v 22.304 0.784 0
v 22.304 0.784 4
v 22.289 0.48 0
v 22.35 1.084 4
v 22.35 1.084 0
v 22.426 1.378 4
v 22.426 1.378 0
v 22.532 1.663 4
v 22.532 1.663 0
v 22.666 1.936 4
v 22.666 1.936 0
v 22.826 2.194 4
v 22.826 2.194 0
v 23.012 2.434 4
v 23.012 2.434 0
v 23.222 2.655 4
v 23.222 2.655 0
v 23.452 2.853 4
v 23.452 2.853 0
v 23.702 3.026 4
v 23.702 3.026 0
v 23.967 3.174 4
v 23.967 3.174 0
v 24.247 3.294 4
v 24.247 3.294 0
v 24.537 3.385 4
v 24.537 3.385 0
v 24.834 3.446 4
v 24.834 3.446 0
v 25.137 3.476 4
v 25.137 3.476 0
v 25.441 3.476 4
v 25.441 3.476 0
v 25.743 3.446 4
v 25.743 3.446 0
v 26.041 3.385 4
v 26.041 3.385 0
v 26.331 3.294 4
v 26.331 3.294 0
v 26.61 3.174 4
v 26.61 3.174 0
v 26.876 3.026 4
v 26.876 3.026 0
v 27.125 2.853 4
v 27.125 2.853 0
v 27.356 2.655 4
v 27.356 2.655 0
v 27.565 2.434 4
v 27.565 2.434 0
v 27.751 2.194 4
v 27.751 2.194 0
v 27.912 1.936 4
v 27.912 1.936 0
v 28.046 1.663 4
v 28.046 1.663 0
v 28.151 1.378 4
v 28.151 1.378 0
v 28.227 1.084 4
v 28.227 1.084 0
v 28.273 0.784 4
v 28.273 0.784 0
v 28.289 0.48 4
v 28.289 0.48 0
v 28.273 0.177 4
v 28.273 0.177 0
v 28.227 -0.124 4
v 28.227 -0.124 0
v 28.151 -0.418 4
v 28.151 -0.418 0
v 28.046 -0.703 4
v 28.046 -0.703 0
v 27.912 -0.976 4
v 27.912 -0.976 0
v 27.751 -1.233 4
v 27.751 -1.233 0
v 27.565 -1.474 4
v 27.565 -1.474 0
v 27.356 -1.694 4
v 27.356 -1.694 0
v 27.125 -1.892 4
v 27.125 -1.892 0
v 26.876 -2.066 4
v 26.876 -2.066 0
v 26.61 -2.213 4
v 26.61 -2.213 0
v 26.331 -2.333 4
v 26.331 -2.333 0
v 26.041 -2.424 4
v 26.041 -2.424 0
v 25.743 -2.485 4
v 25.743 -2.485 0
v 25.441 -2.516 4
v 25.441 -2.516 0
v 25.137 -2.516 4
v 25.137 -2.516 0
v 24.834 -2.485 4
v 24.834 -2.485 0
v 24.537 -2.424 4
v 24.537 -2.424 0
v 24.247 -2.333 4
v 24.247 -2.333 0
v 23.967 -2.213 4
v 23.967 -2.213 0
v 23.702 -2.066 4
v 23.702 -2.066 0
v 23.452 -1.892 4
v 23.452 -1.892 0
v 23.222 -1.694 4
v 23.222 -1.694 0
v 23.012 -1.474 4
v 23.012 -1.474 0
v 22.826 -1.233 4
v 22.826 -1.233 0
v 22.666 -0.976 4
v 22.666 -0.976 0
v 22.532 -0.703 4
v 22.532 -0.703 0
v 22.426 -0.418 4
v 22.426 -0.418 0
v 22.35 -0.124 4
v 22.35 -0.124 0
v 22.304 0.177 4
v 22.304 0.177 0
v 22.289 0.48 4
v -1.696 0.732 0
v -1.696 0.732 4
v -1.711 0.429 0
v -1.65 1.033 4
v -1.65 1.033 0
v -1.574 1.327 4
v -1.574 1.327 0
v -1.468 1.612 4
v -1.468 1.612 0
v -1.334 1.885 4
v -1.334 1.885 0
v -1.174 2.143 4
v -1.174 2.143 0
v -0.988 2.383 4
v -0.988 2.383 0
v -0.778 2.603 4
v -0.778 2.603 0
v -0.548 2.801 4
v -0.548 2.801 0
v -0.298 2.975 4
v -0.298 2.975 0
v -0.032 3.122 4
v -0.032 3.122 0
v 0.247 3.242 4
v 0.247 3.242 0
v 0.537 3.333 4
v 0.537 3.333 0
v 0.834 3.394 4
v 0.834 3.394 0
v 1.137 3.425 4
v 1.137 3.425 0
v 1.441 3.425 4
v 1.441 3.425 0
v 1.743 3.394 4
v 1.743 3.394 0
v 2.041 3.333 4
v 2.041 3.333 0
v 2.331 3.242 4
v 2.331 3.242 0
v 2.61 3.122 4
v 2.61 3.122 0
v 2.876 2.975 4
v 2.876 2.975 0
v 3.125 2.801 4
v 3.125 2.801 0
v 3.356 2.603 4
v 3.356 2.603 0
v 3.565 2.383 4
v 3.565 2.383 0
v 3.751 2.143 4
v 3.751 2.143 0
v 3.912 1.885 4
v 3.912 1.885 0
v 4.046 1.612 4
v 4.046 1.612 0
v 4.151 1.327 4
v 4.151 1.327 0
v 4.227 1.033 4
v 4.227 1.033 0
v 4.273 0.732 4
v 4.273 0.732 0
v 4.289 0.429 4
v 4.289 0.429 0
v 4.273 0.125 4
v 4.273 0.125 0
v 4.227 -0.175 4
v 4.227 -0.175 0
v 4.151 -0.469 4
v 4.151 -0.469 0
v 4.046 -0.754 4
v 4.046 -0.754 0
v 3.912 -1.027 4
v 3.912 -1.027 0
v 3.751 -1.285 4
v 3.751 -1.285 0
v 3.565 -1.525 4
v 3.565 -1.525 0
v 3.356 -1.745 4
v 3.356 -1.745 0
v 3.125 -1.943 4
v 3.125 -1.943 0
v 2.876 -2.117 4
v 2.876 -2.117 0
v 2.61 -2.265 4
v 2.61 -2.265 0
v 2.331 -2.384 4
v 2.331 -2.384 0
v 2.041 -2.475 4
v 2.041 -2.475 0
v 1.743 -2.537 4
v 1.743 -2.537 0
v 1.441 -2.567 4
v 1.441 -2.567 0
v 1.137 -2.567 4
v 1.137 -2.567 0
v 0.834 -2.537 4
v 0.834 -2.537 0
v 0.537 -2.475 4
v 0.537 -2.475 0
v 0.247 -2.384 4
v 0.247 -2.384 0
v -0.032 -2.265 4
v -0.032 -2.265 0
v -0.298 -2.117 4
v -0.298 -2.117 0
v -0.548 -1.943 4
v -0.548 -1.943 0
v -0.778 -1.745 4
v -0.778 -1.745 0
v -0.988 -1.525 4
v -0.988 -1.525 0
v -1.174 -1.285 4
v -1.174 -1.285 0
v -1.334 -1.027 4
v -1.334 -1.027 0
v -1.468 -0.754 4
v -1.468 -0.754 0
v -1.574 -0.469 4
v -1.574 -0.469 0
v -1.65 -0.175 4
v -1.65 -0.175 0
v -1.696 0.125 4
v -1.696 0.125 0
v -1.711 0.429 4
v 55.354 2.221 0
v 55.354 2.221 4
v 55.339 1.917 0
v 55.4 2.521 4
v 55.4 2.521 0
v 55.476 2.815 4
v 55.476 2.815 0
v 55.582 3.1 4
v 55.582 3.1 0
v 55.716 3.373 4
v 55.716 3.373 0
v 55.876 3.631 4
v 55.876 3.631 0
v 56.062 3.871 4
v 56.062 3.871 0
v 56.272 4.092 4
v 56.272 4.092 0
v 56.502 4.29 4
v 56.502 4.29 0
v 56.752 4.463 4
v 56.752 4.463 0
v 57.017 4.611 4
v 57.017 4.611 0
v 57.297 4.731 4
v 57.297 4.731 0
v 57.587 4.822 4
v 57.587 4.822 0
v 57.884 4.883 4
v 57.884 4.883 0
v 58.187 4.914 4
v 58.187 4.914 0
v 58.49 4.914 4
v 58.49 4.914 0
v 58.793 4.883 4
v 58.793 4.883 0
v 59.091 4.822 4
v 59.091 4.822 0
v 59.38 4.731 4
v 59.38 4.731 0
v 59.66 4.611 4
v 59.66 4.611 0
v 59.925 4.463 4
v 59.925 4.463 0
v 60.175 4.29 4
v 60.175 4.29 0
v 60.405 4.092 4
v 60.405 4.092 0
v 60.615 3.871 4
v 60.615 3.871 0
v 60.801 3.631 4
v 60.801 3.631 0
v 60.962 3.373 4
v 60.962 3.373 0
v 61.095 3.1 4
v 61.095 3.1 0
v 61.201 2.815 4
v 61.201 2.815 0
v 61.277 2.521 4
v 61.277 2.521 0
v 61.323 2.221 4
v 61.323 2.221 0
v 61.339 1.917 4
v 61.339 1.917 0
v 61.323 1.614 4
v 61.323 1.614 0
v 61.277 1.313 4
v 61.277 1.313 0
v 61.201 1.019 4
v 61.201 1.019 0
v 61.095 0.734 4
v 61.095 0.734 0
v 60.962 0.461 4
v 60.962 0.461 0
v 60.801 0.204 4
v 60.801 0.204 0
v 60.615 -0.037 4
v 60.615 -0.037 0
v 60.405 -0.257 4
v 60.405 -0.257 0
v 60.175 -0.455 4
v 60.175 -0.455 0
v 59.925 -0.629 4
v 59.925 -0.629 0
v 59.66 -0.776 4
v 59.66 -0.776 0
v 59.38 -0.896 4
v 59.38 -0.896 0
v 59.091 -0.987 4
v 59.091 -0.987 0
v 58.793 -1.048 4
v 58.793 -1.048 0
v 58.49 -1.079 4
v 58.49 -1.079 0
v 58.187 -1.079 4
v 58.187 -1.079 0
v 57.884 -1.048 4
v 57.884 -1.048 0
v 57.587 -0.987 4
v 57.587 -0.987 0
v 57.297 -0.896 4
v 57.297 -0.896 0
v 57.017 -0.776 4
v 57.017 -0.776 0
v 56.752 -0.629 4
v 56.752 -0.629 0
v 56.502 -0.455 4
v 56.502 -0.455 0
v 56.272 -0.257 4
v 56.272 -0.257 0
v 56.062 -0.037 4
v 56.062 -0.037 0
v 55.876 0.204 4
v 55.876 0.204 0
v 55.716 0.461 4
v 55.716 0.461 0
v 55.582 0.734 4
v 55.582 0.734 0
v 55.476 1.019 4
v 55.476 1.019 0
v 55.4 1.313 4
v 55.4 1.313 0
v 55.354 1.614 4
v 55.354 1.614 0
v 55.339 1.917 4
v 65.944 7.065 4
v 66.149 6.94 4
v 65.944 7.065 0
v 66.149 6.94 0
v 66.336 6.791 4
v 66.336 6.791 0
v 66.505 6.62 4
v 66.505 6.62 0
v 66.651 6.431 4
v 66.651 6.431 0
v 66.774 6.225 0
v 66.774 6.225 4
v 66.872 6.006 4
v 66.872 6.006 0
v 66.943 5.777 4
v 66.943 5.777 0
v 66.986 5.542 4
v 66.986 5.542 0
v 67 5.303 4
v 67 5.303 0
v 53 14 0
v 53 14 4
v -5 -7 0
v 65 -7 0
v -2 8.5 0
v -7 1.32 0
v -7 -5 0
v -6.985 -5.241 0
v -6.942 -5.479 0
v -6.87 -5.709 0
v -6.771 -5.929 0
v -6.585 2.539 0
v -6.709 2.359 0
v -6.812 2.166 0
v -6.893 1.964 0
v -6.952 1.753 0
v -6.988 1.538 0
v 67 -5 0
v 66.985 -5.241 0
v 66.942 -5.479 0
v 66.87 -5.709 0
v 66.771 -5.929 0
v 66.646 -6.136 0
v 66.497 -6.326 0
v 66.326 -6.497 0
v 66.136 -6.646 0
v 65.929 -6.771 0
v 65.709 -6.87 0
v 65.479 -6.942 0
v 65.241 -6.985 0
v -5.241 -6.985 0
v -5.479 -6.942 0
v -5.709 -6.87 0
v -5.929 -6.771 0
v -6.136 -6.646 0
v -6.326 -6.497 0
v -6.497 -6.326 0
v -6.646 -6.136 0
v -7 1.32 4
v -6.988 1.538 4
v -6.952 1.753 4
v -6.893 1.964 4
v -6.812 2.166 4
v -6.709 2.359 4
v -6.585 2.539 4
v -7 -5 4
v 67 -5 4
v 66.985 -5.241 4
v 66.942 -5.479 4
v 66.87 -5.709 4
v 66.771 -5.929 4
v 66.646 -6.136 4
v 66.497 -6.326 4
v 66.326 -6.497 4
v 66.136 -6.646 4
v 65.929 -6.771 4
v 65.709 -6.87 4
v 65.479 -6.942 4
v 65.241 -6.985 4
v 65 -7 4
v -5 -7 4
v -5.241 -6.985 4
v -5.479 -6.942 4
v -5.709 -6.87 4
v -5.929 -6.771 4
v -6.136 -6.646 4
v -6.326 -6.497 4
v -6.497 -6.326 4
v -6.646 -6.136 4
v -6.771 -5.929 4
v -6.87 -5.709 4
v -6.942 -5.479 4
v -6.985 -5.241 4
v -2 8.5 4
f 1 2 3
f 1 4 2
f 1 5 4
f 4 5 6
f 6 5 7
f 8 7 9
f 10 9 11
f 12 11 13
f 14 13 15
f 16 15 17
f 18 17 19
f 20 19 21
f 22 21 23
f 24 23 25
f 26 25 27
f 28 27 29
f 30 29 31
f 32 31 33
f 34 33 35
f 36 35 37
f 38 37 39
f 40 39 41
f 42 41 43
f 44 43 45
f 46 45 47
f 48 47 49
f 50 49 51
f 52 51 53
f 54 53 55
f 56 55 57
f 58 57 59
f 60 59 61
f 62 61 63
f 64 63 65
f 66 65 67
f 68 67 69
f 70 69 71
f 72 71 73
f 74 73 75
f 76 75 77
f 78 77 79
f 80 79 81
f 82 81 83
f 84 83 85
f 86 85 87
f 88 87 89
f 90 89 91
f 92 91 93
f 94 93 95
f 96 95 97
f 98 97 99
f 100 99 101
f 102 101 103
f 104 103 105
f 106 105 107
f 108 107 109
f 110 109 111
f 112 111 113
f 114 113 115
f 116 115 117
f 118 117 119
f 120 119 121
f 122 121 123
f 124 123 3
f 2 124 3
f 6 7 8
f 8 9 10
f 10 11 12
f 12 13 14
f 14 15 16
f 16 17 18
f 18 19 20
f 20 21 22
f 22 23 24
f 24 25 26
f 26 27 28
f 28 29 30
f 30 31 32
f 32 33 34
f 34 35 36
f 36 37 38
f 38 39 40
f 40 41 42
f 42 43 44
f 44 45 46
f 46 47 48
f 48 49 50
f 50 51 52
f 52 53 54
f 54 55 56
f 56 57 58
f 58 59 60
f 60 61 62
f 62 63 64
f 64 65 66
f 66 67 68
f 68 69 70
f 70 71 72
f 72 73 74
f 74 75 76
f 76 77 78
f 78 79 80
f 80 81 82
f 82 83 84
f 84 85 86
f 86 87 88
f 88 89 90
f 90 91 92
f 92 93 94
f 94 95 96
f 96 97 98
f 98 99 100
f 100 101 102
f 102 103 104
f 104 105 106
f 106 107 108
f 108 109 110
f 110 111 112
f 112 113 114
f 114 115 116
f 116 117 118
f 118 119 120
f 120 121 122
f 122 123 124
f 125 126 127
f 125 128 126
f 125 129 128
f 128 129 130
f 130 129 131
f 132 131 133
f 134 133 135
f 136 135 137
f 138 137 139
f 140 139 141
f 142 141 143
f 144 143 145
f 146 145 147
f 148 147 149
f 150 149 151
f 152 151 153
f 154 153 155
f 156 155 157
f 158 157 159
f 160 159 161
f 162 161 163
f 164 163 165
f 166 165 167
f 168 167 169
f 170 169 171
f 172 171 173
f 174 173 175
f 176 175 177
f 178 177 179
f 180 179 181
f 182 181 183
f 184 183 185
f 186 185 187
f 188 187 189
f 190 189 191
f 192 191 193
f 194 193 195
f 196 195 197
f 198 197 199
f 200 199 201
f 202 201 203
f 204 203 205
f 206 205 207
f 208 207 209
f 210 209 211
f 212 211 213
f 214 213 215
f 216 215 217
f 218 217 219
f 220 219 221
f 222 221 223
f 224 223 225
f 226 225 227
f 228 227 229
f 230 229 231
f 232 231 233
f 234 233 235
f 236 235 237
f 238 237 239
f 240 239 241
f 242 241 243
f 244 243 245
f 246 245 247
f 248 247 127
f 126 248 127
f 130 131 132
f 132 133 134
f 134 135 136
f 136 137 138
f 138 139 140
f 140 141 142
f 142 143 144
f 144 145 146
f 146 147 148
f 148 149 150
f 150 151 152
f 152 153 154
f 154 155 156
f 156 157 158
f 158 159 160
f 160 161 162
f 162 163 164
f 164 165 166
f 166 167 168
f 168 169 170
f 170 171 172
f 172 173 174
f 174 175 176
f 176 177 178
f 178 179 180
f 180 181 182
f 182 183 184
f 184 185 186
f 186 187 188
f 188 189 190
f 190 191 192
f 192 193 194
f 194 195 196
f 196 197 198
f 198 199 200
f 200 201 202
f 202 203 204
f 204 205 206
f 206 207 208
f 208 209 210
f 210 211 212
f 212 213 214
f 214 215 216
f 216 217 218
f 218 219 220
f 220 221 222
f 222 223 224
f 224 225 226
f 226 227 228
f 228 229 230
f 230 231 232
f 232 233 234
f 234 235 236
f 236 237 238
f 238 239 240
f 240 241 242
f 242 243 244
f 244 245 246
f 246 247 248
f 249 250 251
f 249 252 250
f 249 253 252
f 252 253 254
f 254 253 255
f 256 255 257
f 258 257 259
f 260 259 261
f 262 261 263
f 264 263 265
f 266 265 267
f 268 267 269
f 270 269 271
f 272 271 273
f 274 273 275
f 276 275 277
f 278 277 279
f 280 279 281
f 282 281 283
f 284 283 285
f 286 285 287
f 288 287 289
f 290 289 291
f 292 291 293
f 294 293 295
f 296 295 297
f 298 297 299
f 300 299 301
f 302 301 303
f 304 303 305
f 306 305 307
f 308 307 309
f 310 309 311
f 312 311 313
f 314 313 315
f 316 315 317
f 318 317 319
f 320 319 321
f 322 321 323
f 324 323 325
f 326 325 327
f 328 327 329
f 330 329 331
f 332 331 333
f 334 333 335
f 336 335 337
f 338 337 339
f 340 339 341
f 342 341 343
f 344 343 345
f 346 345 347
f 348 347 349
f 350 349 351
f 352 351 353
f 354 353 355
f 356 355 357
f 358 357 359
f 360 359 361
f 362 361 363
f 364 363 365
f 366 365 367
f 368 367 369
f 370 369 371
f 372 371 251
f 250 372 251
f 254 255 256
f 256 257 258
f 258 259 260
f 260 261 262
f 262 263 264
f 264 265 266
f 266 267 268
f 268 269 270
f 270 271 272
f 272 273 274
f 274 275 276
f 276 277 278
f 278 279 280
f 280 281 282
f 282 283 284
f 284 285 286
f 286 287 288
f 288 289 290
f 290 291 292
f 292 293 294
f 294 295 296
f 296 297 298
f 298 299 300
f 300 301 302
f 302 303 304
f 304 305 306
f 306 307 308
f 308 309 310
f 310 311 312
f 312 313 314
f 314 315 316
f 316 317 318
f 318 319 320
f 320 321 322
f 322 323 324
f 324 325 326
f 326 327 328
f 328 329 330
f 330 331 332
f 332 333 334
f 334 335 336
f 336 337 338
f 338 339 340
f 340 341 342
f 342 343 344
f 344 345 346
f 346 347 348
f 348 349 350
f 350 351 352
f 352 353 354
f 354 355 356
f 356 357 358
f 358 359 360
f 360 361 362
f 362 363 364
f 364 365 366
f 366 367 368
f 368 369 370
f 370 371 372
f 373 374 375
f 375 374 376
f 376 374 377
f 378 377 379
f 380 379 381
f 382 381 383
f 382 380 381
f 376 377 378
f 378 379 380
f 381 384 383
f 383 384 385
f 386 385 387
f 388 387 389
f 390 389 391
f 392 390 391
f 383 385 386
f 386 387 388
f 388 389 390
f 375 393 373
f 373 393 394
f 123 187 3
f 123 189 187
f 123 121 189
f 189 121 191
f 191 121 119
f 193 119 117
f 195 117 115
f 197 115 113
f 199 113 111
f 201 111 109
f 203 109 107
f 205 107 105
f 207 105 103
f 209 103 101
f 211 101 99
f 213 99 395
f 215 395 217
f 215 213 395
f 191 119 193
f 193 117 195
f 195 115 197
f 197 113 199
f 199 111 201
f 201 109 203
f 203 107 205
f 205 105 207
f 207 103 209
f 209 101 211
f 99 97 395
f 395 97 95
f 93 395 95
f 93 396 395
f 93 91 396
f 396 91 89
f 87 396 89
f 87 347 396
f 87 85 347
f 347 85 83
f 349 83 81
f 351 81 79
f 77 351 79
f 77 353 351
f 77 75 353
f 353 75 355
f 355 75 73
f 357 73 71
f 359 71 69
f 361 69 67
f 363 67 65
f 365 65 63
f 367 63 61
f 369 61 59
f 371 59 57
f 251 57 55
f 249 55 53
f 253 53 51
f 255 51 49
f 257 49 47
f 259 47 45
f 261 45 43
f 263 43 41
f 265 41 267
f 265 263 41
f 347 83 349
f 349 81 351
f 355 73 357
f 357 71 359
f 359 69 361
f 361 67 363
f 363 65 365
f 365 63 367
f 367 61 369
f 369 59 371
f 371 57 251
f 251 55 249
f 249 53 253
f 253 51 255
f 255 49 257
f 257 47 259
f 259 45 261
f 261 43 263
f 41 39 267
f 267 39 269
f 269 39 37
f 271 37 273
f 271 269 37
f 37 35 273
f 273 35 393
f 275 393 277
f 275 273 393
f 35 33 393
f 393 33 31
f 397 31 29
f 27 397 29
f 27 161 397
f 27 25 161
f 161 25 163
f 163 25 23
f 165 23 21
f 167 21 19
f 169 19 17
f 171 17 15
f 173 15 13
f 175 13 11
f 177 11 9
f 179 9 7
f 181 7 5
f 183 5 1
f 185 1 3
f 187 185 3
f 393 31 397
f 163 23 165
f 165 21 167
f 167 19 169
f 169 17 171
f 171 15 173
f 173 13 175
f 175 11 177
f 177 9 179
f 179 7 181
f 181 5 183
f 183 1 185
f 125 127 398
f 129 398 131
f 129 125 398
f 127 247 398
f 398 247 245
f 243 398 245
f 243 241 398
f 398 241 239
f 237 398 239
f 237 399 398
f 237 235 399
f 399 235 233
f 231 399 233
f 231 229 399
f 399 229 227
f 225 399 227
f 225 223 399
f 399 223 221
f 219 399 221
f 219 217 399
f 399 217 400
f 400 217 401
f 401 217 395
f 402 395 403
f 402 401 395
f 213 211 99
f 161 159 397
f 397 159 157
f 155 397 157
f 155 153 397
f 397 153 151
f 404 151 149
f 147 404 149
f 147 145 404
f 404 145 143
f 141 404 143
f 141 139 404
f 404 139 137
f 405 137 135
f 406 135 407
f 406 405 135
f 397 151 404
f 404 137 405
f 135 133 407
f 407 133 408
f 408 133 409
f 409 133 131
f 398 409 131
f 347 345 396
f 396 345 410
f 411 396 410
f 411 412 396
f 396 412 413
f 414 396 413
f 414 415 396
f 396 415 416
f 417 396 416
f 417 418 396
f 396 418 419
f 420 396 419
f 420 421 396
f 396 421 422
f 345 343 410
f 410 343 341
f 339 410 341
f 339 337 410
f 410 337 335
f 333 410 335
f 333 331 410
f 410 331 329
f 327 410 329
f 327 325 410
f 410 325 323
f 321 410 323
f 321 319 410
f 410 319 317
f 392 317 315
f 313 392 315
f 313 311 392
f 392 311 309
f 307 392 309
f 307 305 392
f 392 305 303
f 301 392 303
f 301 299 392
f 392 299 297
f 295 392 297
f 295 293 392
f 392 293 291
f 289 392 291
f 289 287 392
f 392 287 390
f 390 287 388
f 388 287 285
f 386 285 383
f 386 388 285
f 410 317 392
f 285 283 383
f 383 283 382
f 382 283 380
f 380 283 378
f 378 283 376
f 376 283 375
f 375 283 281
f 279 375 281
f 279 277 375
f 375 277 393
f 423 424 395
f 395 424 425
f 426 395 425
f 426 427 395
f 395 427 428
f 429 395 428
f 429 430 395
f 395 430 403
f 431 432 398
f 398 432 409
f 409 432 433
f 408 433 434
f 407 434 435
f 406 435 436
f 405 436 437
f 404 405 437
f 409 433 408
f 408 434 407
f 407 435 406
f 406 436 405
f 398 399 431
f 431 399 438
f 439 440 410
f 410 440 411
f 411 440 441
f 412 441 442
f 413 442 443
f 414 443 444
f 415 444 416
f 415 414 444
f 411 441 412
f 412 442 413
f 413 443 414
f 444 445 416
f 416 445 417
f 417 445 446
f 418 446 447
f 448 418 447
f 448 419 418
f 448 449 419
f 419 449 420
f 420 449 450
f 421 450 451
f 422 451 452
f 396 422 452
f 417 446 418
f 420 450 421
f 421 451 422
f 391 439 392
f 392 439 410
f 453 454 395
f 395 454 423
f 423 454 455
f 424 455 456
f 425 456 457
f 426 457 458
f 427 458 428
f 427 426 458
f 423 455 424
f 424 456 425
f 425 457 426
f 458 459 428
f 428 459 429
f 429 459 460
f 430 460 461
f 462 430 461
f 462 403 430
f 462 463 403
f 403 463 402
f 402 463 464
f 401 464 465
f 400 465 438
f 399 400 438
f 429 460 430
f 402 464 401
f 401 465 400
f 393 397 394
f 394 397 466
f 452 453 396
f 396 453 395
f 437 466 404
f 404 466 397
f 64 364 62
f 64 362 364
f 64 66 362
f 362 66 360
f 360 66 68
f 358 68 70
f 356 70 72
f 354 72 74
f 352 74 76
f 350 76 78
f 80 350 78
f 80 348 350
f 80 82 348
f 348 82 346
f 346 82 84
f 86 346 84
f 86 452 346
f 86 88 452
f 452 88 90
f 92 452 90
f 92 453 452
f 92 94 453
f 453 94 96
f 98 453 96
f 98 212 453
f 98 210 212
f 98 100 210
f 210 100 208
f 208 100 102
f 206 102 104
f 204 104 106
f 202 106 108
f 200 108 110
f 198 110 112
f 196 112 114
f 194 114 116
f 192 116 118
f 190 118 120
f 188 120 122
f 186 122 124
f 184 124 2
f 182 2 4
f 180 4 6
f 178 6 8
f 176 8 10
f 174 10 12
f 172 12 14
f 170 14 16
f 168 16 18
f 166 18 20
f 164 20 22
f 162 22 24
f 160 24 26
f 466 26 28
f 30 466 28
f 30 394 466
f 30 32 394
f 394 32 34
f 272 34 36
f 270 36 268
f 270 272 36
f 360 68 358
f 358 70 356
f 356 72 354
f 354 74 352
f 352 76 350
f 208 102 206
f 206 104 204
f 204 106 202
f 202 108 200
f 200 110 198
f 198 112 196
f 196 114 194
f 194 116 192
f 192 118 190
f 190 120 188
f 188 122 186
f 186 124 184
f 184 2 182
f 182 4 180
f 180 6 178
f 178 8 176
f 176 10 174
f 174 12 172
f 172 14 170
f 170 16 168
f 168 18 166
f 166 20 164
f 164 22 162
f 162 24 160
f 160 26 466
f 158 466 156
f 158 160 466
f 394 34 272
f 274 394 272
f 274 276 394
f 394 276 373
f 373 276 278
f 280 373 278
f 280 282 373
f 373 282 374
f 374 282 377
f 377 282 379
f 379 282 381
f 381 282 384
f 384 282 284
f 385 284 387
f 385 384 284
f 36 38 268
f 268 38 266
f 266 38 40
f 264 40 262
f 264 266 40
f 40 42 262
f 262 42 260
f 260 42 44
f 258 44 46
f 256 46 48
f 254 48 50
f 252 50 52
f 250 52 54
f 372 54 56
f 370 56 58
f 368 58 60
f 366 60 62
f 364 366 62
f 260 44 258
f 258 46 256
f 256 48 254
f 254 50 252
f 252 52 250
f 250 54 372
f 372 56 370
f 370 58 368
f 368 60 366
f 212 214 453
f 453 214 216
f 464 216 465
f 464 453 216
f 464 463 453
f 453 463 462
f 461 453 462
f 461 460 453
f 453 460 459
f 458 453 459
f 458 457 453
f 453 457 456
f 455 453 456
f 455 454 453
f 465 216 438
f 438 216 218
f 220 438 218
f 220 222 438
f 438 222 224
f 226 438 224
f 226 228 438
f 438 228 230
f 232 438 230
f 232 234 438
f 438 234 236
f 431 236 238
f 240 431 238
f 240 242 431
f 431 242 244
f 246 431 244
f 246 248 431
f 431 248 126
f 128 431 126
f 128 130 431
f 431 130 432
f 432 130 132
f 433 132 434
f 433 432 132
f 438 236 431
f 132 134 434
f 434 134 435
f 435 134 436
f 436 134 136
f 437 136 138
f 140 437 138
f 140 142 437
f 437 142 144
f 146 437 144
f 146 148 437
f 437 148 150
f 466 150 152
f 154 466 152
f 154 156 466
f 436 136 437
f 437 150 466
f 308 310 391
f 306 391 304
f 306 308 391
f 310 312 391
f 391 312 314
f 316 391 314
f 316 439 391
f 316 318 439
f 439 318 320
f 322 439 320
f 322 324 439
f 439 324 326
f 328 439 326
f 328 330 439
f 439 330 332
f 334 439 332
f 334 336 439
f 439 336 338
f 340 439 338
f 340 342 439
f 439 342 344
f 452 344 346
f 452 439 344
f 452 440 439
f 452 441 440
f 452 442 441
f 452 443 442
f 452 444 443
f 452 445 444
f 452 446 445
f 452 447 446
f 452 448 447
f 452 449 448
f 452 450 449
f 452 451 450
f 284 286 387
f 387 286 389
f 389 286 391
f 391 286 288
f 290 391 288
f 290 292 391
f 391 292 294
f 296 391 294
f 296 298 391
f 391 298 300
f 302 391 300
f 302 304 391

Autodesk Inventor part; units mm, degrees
ref_plane "YZ Plane" through (0, 0, 0) normal (1, 0, 0) x (0, 1, 0)
ref_plane "XZ Plane" through (0, 0, 0) normal (0, 1, 0) x (-1, 0, 0)
ref_plane "XY Plane" through (0, 0, 0) normal (0, 0, 1) x (1, 0, 0)
sketch "Body" plane through (0, 0, 0) normal (0, 0, 1) x (1, 0, 0)
  line L0 (0, 0) -> (60, 0) construction
  line L1 (-7, 2) -> (-2, 8.5)
  line L2 (-2, 8.5) -> (53, 14)
  line L3 (53, 14) -> (67, 6.5)
  line L4 (67, 6.5) -> (67, -7)
  line L5 (67, -7) -> (-7, -7)
  line L6 (-7, -7) -> (-7, 2)
  dimension "d1" = 60
  dimension "d2" = 7
  dimension "d4" = 7
  dimension "d5" = 7
  dimension "d6" = 14
  dimension "d8" = 13.5
  dimension "d9" = 9
  dimension "d13" = 8.5
  dimension "d14" = 5
  dimension "d15" = 14
extrude "BodyFeature" add sketch "Body" along normal blind 4
fillet "FilletsFeature" radius 2 4 edges at (-7, -7, 2) (67, -7, 2) (-7, 2, 2) (67, 6.5, 2)
sketch "MountHoles" plane through (0, 0, 4) normal (0, 0, 1) x (1, 0, 0)
  circle A0 centre (1.2887, 0.4289) radius 3.25 projected
  circle A1 centre (25.2886, 0.4803) radius 3.25 projected
  circle A2 centre (58.3386, 1.9174) radius 3.25 projected
hole "MountHolesFeature" at (1.2887, 0.4289, 4) at (25.2886, 0.4803, 4) at (58.3386, 1.9174, 4) direction (0, 0, -1) diameter 6 end through all
properties part number "SpineNeckLinkConnector"
